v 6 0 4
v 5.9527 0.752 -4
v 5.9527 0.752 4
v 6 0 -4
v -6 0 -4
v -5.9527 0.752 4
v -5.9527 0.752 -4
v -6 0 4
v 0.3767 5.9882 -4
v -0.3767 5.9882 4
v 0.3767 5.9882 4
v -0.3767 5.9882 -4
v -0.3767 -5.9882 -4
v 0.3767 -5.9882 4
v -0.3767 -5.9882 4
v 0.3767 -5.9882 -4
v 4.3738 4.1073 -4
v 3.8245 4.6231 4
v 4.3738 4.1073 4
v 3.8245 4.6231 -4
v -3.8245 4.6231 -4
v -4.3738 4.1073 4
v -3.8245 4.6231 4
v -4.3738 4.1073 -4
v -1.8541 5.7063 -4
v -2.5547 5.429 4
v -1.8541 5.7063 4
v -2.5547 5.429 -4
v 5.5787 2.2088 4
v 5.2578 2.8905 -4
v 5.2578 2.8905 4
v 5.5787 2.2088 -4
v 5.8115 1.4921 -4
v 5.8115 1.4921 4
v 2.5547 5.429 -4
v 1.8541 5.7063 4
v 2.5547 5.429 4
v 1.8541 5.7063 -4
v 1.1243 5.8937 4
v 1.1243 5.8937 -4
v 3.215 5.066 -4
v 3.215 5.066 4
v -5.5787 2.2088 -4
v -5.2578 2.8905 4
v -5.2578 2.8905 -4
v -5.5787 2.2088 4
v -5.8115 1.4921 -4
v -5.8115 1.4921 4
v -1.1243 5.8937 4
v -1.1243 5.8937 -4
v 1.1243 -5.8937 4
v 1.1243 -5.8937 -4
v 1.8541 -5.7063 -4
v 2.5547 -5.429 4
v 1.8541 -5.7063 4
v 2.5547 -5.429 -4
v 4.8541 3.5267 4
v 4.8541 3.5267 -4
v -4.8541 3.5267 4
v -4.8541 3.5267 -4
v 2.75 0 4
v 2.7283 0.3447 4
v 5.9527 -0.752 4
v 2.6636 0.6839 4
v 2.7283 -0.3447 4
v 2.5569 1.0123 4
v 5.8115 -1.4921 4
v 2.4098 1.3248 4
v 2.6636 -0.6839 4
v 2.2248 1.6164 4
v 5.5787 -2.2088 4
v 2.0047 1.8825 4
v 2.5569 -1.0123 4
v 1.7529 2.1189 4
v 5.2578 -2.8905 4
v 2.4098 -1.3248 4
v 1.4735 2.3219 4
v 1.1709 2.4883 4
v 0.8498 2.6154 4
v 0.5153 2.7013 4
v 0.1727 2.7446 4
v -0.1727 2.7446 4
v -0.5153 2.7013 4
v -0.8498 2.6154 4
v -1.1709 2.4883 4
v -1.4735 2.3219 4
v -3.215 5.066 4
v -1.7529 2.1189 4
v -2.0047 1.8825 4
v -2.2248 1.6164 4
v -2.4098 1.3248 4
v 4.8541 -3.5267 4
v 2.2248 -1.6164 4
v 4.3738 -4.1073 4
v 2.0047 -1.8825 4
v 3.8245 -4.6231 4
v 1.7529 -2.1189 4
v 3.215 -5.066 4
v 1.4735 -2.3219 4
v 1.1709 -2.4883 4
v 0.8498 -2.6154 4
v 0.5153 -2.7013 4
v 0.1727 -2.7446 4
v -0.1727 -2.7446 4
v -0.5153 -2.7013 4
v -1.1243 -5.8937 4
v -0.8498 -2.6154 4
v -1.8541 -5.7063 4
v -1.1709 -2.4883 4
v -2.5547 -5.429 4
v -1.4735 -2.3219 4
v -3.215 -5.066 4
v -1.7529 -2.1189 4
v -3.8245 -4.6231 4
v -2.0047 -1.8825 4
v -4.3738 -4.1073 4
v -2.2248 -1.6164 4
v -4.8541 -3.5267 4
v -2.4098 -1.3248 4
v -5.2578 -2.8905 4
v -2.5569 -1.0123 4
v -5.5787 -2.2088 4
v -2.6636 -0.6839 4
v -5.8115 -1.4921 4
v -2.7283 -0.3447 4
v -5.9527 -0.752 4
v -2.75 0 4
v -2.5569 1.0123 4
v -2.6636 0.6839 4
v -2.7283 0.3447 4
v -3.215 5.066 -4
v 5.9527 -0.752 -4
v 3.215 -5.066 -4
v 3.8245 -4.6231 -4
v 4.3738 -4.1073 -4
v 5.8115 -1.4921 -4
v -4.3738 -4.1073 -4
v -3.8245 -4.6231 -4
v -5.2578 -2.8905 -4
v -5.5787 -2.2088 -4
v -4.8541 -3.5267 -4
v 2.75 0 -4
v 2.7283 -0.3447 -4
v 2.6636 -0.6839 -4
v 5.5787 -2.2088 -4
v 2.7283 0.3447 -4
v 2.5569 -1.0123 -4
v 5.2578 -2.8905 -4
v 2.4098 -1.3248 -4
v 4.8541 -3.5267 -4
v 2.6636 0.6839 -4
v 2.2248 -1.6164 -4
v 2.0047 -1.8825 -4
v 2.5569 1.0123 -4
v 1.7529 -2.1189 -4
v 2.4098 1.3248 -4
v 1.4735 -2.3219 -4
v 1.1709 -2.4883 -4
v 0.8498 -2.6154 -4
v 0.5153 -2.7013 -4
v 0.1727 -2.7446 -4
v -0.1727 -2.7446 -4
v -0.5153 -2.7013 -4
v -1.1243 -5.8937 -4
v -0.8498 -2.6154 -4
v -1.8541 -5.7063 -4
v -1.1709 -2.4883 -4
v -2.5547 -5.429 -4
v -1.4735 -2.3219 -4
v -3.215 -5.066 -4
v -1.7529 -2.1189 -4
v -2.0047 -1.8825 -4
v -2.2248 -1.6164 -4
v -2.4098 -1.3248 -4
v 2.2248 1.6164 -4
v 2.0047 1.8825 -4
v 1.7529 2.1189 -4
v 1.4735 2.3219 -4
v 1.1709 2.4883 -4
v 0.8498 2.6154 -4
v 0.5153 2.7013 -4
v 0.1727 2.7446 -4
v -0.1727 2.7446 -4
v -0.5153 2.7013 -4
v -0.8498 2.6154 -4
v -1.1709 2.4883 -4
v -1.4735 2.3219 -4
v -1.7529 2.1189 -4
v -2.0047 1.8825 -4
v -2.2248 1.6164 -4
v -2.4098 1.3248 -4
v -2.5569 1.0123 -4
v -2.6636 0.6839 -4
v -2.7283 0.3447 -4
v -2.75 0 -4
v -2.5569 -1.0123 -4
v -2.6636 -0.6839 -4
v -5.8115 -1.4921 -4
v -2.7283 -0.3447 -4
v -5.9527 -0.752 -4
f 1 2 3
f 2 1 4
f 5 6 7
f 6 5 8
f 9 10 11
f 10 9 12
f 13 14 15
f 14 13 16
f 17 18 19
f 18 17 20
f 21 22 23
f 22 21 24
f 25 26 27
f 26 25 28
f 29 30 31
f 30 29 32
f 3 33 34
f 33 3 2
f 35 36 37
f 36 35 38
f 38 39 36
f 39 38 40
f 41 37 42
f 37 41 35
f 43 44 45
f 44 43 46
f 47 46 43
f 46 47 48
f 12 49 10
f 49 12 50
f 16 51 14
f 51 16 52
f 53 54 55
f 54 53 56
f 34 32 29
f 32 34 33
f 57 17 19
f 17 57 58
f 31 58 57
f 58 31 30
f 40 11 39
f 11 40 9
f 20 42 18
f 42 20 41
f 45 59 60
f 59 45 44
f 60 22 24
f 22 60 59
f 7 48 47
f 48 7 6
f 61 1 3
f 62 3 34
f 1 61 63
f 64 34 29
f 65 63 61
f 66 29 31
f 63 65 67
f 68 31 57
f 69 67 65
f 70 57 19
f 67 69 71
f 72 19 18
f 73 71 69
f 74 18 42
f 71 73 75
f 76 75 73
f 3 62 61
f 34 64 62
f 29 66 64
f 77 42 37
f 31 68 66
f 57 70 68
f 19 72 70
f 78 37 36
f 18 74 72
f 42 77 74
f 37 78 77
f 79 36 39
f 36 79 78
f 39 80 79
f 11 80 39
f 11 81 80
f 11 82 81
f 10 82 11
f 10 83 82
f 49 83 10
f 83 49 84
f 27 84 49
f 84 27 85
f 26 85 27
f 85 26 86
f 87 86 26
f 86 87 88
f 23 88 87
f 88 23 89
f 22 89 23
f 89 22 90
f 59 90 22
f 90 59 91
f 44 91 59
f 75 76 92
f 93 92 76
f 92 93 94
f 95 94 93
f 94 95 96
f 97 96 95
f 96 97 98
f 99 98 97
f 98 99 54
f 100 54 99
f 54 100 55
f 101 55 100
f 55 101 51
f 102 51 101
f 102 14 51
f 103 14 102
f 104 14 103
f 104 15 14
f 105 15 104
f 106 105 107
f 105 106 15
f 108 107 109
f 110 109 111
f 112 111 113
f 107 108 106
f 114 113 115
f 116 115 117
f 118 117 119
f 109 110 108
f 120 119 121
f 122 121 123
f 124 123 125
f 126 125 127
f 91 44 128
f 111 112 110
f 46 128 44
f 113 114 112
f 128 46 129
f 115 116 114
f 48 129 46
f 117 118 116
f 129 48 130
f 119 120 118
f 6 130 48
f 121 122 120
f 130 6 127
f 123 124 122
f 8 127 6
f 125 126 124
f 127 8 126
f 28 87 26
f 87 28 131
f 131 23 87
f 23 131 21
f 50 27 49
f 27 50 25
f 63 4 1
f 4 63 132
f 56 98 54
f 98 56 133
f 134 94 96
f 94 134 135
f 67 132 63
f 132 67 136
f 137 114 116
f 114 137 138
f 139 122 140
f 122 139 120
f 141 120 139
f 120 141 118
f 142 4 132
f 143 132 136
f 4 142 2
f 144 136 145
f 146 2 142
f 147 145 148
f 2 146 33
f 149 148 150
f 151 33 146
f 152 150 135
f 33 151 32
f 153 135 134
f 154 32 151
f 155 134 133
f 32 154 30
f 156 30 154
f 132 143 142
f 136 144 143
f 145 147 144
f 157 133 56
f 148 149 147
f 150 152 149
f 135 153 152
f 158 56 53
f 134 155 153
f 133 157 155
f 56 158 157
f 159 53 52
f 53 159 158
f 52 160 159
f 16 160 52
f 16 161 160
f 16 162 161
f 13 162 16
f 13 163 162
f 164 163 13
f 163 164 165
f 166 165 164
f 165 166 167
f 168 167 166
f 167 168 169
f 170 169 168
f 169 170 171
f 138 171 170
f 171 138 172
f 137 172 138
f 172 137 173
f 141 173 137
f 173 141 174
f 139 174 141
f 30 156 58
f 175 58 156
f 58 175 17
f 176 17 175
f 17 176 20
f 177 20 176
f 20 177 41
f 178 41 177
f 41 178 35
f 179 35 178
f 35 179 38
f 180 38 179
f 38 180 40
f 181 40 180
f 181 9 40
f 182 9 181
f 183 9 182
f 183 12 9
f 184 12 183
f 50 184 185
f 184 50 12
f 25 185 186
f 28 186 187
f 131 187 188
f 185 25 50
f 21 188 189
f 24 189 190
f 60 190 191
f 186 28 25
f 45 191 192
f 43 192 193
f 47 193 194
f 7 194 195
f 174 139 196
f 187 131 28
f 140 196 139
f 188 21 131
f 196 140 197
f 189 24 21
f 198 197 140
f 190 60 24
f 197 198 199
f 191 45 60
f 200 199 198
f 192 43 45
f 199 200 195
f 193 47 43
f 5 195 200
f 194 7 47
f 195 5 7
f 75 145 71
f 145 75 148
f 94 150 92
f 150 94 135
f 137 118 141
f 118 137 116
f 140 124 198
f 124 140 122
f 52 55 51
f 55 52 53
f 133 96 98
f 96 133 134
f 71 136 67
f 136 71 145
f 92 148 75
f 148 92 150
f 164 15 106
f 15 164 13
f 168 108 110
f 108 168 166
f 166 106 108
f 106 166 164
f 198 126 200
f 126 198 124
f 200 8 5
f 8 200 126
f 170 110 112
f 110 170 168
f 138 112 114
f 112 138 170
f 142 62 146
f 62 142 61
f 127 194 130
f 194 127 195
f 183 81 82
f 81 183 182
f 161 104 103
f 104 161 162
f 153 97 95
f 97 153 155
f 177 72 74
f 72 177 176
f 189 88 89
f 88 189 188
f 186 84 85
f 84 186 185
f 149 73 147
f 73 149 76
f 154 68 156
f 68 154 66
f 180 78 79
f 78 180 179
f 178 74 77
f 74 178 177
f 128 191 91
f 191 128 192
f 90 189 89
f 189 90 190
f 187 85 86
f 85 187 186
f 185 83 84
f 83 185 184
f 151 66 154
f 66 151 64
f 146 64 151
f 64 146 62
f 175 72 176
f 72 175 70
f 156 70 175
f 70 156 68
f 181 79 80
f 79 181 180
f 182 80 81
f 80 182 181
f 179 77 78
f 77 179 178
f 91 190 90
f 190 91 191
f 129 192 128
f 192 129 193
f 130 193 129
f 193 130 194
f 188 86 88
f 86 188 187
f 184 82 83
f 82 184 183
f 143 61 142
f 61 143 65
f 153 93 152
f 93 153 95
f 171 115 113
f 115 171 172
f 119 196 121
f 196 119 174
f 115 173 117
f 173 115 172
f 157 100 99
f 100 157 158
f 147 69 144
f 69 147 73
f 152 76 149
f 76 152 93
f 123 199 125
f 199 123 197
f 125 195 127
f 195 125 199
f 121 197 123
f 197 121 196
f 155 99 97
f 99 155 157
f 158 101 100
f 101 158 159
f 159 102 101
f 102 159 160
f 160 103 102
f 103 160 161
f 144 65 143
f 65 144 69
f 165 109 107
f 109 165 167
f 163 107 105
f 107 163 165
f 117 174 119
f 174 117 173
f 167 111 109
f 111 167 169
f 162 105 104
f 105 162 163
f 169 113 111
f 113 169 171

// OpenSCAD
$fn = 50;


difference() {
	union() {
		translate(v = [0, 0, -4.0000000000]) {
			cylinder(h = 8, r = 6.0000000000);
		}
	}
	union() {
		translate(v = [0, 0, -100.0000000000]) {
			cylinder(h = 200, r = 2.7500000000);
		}
	}
}
